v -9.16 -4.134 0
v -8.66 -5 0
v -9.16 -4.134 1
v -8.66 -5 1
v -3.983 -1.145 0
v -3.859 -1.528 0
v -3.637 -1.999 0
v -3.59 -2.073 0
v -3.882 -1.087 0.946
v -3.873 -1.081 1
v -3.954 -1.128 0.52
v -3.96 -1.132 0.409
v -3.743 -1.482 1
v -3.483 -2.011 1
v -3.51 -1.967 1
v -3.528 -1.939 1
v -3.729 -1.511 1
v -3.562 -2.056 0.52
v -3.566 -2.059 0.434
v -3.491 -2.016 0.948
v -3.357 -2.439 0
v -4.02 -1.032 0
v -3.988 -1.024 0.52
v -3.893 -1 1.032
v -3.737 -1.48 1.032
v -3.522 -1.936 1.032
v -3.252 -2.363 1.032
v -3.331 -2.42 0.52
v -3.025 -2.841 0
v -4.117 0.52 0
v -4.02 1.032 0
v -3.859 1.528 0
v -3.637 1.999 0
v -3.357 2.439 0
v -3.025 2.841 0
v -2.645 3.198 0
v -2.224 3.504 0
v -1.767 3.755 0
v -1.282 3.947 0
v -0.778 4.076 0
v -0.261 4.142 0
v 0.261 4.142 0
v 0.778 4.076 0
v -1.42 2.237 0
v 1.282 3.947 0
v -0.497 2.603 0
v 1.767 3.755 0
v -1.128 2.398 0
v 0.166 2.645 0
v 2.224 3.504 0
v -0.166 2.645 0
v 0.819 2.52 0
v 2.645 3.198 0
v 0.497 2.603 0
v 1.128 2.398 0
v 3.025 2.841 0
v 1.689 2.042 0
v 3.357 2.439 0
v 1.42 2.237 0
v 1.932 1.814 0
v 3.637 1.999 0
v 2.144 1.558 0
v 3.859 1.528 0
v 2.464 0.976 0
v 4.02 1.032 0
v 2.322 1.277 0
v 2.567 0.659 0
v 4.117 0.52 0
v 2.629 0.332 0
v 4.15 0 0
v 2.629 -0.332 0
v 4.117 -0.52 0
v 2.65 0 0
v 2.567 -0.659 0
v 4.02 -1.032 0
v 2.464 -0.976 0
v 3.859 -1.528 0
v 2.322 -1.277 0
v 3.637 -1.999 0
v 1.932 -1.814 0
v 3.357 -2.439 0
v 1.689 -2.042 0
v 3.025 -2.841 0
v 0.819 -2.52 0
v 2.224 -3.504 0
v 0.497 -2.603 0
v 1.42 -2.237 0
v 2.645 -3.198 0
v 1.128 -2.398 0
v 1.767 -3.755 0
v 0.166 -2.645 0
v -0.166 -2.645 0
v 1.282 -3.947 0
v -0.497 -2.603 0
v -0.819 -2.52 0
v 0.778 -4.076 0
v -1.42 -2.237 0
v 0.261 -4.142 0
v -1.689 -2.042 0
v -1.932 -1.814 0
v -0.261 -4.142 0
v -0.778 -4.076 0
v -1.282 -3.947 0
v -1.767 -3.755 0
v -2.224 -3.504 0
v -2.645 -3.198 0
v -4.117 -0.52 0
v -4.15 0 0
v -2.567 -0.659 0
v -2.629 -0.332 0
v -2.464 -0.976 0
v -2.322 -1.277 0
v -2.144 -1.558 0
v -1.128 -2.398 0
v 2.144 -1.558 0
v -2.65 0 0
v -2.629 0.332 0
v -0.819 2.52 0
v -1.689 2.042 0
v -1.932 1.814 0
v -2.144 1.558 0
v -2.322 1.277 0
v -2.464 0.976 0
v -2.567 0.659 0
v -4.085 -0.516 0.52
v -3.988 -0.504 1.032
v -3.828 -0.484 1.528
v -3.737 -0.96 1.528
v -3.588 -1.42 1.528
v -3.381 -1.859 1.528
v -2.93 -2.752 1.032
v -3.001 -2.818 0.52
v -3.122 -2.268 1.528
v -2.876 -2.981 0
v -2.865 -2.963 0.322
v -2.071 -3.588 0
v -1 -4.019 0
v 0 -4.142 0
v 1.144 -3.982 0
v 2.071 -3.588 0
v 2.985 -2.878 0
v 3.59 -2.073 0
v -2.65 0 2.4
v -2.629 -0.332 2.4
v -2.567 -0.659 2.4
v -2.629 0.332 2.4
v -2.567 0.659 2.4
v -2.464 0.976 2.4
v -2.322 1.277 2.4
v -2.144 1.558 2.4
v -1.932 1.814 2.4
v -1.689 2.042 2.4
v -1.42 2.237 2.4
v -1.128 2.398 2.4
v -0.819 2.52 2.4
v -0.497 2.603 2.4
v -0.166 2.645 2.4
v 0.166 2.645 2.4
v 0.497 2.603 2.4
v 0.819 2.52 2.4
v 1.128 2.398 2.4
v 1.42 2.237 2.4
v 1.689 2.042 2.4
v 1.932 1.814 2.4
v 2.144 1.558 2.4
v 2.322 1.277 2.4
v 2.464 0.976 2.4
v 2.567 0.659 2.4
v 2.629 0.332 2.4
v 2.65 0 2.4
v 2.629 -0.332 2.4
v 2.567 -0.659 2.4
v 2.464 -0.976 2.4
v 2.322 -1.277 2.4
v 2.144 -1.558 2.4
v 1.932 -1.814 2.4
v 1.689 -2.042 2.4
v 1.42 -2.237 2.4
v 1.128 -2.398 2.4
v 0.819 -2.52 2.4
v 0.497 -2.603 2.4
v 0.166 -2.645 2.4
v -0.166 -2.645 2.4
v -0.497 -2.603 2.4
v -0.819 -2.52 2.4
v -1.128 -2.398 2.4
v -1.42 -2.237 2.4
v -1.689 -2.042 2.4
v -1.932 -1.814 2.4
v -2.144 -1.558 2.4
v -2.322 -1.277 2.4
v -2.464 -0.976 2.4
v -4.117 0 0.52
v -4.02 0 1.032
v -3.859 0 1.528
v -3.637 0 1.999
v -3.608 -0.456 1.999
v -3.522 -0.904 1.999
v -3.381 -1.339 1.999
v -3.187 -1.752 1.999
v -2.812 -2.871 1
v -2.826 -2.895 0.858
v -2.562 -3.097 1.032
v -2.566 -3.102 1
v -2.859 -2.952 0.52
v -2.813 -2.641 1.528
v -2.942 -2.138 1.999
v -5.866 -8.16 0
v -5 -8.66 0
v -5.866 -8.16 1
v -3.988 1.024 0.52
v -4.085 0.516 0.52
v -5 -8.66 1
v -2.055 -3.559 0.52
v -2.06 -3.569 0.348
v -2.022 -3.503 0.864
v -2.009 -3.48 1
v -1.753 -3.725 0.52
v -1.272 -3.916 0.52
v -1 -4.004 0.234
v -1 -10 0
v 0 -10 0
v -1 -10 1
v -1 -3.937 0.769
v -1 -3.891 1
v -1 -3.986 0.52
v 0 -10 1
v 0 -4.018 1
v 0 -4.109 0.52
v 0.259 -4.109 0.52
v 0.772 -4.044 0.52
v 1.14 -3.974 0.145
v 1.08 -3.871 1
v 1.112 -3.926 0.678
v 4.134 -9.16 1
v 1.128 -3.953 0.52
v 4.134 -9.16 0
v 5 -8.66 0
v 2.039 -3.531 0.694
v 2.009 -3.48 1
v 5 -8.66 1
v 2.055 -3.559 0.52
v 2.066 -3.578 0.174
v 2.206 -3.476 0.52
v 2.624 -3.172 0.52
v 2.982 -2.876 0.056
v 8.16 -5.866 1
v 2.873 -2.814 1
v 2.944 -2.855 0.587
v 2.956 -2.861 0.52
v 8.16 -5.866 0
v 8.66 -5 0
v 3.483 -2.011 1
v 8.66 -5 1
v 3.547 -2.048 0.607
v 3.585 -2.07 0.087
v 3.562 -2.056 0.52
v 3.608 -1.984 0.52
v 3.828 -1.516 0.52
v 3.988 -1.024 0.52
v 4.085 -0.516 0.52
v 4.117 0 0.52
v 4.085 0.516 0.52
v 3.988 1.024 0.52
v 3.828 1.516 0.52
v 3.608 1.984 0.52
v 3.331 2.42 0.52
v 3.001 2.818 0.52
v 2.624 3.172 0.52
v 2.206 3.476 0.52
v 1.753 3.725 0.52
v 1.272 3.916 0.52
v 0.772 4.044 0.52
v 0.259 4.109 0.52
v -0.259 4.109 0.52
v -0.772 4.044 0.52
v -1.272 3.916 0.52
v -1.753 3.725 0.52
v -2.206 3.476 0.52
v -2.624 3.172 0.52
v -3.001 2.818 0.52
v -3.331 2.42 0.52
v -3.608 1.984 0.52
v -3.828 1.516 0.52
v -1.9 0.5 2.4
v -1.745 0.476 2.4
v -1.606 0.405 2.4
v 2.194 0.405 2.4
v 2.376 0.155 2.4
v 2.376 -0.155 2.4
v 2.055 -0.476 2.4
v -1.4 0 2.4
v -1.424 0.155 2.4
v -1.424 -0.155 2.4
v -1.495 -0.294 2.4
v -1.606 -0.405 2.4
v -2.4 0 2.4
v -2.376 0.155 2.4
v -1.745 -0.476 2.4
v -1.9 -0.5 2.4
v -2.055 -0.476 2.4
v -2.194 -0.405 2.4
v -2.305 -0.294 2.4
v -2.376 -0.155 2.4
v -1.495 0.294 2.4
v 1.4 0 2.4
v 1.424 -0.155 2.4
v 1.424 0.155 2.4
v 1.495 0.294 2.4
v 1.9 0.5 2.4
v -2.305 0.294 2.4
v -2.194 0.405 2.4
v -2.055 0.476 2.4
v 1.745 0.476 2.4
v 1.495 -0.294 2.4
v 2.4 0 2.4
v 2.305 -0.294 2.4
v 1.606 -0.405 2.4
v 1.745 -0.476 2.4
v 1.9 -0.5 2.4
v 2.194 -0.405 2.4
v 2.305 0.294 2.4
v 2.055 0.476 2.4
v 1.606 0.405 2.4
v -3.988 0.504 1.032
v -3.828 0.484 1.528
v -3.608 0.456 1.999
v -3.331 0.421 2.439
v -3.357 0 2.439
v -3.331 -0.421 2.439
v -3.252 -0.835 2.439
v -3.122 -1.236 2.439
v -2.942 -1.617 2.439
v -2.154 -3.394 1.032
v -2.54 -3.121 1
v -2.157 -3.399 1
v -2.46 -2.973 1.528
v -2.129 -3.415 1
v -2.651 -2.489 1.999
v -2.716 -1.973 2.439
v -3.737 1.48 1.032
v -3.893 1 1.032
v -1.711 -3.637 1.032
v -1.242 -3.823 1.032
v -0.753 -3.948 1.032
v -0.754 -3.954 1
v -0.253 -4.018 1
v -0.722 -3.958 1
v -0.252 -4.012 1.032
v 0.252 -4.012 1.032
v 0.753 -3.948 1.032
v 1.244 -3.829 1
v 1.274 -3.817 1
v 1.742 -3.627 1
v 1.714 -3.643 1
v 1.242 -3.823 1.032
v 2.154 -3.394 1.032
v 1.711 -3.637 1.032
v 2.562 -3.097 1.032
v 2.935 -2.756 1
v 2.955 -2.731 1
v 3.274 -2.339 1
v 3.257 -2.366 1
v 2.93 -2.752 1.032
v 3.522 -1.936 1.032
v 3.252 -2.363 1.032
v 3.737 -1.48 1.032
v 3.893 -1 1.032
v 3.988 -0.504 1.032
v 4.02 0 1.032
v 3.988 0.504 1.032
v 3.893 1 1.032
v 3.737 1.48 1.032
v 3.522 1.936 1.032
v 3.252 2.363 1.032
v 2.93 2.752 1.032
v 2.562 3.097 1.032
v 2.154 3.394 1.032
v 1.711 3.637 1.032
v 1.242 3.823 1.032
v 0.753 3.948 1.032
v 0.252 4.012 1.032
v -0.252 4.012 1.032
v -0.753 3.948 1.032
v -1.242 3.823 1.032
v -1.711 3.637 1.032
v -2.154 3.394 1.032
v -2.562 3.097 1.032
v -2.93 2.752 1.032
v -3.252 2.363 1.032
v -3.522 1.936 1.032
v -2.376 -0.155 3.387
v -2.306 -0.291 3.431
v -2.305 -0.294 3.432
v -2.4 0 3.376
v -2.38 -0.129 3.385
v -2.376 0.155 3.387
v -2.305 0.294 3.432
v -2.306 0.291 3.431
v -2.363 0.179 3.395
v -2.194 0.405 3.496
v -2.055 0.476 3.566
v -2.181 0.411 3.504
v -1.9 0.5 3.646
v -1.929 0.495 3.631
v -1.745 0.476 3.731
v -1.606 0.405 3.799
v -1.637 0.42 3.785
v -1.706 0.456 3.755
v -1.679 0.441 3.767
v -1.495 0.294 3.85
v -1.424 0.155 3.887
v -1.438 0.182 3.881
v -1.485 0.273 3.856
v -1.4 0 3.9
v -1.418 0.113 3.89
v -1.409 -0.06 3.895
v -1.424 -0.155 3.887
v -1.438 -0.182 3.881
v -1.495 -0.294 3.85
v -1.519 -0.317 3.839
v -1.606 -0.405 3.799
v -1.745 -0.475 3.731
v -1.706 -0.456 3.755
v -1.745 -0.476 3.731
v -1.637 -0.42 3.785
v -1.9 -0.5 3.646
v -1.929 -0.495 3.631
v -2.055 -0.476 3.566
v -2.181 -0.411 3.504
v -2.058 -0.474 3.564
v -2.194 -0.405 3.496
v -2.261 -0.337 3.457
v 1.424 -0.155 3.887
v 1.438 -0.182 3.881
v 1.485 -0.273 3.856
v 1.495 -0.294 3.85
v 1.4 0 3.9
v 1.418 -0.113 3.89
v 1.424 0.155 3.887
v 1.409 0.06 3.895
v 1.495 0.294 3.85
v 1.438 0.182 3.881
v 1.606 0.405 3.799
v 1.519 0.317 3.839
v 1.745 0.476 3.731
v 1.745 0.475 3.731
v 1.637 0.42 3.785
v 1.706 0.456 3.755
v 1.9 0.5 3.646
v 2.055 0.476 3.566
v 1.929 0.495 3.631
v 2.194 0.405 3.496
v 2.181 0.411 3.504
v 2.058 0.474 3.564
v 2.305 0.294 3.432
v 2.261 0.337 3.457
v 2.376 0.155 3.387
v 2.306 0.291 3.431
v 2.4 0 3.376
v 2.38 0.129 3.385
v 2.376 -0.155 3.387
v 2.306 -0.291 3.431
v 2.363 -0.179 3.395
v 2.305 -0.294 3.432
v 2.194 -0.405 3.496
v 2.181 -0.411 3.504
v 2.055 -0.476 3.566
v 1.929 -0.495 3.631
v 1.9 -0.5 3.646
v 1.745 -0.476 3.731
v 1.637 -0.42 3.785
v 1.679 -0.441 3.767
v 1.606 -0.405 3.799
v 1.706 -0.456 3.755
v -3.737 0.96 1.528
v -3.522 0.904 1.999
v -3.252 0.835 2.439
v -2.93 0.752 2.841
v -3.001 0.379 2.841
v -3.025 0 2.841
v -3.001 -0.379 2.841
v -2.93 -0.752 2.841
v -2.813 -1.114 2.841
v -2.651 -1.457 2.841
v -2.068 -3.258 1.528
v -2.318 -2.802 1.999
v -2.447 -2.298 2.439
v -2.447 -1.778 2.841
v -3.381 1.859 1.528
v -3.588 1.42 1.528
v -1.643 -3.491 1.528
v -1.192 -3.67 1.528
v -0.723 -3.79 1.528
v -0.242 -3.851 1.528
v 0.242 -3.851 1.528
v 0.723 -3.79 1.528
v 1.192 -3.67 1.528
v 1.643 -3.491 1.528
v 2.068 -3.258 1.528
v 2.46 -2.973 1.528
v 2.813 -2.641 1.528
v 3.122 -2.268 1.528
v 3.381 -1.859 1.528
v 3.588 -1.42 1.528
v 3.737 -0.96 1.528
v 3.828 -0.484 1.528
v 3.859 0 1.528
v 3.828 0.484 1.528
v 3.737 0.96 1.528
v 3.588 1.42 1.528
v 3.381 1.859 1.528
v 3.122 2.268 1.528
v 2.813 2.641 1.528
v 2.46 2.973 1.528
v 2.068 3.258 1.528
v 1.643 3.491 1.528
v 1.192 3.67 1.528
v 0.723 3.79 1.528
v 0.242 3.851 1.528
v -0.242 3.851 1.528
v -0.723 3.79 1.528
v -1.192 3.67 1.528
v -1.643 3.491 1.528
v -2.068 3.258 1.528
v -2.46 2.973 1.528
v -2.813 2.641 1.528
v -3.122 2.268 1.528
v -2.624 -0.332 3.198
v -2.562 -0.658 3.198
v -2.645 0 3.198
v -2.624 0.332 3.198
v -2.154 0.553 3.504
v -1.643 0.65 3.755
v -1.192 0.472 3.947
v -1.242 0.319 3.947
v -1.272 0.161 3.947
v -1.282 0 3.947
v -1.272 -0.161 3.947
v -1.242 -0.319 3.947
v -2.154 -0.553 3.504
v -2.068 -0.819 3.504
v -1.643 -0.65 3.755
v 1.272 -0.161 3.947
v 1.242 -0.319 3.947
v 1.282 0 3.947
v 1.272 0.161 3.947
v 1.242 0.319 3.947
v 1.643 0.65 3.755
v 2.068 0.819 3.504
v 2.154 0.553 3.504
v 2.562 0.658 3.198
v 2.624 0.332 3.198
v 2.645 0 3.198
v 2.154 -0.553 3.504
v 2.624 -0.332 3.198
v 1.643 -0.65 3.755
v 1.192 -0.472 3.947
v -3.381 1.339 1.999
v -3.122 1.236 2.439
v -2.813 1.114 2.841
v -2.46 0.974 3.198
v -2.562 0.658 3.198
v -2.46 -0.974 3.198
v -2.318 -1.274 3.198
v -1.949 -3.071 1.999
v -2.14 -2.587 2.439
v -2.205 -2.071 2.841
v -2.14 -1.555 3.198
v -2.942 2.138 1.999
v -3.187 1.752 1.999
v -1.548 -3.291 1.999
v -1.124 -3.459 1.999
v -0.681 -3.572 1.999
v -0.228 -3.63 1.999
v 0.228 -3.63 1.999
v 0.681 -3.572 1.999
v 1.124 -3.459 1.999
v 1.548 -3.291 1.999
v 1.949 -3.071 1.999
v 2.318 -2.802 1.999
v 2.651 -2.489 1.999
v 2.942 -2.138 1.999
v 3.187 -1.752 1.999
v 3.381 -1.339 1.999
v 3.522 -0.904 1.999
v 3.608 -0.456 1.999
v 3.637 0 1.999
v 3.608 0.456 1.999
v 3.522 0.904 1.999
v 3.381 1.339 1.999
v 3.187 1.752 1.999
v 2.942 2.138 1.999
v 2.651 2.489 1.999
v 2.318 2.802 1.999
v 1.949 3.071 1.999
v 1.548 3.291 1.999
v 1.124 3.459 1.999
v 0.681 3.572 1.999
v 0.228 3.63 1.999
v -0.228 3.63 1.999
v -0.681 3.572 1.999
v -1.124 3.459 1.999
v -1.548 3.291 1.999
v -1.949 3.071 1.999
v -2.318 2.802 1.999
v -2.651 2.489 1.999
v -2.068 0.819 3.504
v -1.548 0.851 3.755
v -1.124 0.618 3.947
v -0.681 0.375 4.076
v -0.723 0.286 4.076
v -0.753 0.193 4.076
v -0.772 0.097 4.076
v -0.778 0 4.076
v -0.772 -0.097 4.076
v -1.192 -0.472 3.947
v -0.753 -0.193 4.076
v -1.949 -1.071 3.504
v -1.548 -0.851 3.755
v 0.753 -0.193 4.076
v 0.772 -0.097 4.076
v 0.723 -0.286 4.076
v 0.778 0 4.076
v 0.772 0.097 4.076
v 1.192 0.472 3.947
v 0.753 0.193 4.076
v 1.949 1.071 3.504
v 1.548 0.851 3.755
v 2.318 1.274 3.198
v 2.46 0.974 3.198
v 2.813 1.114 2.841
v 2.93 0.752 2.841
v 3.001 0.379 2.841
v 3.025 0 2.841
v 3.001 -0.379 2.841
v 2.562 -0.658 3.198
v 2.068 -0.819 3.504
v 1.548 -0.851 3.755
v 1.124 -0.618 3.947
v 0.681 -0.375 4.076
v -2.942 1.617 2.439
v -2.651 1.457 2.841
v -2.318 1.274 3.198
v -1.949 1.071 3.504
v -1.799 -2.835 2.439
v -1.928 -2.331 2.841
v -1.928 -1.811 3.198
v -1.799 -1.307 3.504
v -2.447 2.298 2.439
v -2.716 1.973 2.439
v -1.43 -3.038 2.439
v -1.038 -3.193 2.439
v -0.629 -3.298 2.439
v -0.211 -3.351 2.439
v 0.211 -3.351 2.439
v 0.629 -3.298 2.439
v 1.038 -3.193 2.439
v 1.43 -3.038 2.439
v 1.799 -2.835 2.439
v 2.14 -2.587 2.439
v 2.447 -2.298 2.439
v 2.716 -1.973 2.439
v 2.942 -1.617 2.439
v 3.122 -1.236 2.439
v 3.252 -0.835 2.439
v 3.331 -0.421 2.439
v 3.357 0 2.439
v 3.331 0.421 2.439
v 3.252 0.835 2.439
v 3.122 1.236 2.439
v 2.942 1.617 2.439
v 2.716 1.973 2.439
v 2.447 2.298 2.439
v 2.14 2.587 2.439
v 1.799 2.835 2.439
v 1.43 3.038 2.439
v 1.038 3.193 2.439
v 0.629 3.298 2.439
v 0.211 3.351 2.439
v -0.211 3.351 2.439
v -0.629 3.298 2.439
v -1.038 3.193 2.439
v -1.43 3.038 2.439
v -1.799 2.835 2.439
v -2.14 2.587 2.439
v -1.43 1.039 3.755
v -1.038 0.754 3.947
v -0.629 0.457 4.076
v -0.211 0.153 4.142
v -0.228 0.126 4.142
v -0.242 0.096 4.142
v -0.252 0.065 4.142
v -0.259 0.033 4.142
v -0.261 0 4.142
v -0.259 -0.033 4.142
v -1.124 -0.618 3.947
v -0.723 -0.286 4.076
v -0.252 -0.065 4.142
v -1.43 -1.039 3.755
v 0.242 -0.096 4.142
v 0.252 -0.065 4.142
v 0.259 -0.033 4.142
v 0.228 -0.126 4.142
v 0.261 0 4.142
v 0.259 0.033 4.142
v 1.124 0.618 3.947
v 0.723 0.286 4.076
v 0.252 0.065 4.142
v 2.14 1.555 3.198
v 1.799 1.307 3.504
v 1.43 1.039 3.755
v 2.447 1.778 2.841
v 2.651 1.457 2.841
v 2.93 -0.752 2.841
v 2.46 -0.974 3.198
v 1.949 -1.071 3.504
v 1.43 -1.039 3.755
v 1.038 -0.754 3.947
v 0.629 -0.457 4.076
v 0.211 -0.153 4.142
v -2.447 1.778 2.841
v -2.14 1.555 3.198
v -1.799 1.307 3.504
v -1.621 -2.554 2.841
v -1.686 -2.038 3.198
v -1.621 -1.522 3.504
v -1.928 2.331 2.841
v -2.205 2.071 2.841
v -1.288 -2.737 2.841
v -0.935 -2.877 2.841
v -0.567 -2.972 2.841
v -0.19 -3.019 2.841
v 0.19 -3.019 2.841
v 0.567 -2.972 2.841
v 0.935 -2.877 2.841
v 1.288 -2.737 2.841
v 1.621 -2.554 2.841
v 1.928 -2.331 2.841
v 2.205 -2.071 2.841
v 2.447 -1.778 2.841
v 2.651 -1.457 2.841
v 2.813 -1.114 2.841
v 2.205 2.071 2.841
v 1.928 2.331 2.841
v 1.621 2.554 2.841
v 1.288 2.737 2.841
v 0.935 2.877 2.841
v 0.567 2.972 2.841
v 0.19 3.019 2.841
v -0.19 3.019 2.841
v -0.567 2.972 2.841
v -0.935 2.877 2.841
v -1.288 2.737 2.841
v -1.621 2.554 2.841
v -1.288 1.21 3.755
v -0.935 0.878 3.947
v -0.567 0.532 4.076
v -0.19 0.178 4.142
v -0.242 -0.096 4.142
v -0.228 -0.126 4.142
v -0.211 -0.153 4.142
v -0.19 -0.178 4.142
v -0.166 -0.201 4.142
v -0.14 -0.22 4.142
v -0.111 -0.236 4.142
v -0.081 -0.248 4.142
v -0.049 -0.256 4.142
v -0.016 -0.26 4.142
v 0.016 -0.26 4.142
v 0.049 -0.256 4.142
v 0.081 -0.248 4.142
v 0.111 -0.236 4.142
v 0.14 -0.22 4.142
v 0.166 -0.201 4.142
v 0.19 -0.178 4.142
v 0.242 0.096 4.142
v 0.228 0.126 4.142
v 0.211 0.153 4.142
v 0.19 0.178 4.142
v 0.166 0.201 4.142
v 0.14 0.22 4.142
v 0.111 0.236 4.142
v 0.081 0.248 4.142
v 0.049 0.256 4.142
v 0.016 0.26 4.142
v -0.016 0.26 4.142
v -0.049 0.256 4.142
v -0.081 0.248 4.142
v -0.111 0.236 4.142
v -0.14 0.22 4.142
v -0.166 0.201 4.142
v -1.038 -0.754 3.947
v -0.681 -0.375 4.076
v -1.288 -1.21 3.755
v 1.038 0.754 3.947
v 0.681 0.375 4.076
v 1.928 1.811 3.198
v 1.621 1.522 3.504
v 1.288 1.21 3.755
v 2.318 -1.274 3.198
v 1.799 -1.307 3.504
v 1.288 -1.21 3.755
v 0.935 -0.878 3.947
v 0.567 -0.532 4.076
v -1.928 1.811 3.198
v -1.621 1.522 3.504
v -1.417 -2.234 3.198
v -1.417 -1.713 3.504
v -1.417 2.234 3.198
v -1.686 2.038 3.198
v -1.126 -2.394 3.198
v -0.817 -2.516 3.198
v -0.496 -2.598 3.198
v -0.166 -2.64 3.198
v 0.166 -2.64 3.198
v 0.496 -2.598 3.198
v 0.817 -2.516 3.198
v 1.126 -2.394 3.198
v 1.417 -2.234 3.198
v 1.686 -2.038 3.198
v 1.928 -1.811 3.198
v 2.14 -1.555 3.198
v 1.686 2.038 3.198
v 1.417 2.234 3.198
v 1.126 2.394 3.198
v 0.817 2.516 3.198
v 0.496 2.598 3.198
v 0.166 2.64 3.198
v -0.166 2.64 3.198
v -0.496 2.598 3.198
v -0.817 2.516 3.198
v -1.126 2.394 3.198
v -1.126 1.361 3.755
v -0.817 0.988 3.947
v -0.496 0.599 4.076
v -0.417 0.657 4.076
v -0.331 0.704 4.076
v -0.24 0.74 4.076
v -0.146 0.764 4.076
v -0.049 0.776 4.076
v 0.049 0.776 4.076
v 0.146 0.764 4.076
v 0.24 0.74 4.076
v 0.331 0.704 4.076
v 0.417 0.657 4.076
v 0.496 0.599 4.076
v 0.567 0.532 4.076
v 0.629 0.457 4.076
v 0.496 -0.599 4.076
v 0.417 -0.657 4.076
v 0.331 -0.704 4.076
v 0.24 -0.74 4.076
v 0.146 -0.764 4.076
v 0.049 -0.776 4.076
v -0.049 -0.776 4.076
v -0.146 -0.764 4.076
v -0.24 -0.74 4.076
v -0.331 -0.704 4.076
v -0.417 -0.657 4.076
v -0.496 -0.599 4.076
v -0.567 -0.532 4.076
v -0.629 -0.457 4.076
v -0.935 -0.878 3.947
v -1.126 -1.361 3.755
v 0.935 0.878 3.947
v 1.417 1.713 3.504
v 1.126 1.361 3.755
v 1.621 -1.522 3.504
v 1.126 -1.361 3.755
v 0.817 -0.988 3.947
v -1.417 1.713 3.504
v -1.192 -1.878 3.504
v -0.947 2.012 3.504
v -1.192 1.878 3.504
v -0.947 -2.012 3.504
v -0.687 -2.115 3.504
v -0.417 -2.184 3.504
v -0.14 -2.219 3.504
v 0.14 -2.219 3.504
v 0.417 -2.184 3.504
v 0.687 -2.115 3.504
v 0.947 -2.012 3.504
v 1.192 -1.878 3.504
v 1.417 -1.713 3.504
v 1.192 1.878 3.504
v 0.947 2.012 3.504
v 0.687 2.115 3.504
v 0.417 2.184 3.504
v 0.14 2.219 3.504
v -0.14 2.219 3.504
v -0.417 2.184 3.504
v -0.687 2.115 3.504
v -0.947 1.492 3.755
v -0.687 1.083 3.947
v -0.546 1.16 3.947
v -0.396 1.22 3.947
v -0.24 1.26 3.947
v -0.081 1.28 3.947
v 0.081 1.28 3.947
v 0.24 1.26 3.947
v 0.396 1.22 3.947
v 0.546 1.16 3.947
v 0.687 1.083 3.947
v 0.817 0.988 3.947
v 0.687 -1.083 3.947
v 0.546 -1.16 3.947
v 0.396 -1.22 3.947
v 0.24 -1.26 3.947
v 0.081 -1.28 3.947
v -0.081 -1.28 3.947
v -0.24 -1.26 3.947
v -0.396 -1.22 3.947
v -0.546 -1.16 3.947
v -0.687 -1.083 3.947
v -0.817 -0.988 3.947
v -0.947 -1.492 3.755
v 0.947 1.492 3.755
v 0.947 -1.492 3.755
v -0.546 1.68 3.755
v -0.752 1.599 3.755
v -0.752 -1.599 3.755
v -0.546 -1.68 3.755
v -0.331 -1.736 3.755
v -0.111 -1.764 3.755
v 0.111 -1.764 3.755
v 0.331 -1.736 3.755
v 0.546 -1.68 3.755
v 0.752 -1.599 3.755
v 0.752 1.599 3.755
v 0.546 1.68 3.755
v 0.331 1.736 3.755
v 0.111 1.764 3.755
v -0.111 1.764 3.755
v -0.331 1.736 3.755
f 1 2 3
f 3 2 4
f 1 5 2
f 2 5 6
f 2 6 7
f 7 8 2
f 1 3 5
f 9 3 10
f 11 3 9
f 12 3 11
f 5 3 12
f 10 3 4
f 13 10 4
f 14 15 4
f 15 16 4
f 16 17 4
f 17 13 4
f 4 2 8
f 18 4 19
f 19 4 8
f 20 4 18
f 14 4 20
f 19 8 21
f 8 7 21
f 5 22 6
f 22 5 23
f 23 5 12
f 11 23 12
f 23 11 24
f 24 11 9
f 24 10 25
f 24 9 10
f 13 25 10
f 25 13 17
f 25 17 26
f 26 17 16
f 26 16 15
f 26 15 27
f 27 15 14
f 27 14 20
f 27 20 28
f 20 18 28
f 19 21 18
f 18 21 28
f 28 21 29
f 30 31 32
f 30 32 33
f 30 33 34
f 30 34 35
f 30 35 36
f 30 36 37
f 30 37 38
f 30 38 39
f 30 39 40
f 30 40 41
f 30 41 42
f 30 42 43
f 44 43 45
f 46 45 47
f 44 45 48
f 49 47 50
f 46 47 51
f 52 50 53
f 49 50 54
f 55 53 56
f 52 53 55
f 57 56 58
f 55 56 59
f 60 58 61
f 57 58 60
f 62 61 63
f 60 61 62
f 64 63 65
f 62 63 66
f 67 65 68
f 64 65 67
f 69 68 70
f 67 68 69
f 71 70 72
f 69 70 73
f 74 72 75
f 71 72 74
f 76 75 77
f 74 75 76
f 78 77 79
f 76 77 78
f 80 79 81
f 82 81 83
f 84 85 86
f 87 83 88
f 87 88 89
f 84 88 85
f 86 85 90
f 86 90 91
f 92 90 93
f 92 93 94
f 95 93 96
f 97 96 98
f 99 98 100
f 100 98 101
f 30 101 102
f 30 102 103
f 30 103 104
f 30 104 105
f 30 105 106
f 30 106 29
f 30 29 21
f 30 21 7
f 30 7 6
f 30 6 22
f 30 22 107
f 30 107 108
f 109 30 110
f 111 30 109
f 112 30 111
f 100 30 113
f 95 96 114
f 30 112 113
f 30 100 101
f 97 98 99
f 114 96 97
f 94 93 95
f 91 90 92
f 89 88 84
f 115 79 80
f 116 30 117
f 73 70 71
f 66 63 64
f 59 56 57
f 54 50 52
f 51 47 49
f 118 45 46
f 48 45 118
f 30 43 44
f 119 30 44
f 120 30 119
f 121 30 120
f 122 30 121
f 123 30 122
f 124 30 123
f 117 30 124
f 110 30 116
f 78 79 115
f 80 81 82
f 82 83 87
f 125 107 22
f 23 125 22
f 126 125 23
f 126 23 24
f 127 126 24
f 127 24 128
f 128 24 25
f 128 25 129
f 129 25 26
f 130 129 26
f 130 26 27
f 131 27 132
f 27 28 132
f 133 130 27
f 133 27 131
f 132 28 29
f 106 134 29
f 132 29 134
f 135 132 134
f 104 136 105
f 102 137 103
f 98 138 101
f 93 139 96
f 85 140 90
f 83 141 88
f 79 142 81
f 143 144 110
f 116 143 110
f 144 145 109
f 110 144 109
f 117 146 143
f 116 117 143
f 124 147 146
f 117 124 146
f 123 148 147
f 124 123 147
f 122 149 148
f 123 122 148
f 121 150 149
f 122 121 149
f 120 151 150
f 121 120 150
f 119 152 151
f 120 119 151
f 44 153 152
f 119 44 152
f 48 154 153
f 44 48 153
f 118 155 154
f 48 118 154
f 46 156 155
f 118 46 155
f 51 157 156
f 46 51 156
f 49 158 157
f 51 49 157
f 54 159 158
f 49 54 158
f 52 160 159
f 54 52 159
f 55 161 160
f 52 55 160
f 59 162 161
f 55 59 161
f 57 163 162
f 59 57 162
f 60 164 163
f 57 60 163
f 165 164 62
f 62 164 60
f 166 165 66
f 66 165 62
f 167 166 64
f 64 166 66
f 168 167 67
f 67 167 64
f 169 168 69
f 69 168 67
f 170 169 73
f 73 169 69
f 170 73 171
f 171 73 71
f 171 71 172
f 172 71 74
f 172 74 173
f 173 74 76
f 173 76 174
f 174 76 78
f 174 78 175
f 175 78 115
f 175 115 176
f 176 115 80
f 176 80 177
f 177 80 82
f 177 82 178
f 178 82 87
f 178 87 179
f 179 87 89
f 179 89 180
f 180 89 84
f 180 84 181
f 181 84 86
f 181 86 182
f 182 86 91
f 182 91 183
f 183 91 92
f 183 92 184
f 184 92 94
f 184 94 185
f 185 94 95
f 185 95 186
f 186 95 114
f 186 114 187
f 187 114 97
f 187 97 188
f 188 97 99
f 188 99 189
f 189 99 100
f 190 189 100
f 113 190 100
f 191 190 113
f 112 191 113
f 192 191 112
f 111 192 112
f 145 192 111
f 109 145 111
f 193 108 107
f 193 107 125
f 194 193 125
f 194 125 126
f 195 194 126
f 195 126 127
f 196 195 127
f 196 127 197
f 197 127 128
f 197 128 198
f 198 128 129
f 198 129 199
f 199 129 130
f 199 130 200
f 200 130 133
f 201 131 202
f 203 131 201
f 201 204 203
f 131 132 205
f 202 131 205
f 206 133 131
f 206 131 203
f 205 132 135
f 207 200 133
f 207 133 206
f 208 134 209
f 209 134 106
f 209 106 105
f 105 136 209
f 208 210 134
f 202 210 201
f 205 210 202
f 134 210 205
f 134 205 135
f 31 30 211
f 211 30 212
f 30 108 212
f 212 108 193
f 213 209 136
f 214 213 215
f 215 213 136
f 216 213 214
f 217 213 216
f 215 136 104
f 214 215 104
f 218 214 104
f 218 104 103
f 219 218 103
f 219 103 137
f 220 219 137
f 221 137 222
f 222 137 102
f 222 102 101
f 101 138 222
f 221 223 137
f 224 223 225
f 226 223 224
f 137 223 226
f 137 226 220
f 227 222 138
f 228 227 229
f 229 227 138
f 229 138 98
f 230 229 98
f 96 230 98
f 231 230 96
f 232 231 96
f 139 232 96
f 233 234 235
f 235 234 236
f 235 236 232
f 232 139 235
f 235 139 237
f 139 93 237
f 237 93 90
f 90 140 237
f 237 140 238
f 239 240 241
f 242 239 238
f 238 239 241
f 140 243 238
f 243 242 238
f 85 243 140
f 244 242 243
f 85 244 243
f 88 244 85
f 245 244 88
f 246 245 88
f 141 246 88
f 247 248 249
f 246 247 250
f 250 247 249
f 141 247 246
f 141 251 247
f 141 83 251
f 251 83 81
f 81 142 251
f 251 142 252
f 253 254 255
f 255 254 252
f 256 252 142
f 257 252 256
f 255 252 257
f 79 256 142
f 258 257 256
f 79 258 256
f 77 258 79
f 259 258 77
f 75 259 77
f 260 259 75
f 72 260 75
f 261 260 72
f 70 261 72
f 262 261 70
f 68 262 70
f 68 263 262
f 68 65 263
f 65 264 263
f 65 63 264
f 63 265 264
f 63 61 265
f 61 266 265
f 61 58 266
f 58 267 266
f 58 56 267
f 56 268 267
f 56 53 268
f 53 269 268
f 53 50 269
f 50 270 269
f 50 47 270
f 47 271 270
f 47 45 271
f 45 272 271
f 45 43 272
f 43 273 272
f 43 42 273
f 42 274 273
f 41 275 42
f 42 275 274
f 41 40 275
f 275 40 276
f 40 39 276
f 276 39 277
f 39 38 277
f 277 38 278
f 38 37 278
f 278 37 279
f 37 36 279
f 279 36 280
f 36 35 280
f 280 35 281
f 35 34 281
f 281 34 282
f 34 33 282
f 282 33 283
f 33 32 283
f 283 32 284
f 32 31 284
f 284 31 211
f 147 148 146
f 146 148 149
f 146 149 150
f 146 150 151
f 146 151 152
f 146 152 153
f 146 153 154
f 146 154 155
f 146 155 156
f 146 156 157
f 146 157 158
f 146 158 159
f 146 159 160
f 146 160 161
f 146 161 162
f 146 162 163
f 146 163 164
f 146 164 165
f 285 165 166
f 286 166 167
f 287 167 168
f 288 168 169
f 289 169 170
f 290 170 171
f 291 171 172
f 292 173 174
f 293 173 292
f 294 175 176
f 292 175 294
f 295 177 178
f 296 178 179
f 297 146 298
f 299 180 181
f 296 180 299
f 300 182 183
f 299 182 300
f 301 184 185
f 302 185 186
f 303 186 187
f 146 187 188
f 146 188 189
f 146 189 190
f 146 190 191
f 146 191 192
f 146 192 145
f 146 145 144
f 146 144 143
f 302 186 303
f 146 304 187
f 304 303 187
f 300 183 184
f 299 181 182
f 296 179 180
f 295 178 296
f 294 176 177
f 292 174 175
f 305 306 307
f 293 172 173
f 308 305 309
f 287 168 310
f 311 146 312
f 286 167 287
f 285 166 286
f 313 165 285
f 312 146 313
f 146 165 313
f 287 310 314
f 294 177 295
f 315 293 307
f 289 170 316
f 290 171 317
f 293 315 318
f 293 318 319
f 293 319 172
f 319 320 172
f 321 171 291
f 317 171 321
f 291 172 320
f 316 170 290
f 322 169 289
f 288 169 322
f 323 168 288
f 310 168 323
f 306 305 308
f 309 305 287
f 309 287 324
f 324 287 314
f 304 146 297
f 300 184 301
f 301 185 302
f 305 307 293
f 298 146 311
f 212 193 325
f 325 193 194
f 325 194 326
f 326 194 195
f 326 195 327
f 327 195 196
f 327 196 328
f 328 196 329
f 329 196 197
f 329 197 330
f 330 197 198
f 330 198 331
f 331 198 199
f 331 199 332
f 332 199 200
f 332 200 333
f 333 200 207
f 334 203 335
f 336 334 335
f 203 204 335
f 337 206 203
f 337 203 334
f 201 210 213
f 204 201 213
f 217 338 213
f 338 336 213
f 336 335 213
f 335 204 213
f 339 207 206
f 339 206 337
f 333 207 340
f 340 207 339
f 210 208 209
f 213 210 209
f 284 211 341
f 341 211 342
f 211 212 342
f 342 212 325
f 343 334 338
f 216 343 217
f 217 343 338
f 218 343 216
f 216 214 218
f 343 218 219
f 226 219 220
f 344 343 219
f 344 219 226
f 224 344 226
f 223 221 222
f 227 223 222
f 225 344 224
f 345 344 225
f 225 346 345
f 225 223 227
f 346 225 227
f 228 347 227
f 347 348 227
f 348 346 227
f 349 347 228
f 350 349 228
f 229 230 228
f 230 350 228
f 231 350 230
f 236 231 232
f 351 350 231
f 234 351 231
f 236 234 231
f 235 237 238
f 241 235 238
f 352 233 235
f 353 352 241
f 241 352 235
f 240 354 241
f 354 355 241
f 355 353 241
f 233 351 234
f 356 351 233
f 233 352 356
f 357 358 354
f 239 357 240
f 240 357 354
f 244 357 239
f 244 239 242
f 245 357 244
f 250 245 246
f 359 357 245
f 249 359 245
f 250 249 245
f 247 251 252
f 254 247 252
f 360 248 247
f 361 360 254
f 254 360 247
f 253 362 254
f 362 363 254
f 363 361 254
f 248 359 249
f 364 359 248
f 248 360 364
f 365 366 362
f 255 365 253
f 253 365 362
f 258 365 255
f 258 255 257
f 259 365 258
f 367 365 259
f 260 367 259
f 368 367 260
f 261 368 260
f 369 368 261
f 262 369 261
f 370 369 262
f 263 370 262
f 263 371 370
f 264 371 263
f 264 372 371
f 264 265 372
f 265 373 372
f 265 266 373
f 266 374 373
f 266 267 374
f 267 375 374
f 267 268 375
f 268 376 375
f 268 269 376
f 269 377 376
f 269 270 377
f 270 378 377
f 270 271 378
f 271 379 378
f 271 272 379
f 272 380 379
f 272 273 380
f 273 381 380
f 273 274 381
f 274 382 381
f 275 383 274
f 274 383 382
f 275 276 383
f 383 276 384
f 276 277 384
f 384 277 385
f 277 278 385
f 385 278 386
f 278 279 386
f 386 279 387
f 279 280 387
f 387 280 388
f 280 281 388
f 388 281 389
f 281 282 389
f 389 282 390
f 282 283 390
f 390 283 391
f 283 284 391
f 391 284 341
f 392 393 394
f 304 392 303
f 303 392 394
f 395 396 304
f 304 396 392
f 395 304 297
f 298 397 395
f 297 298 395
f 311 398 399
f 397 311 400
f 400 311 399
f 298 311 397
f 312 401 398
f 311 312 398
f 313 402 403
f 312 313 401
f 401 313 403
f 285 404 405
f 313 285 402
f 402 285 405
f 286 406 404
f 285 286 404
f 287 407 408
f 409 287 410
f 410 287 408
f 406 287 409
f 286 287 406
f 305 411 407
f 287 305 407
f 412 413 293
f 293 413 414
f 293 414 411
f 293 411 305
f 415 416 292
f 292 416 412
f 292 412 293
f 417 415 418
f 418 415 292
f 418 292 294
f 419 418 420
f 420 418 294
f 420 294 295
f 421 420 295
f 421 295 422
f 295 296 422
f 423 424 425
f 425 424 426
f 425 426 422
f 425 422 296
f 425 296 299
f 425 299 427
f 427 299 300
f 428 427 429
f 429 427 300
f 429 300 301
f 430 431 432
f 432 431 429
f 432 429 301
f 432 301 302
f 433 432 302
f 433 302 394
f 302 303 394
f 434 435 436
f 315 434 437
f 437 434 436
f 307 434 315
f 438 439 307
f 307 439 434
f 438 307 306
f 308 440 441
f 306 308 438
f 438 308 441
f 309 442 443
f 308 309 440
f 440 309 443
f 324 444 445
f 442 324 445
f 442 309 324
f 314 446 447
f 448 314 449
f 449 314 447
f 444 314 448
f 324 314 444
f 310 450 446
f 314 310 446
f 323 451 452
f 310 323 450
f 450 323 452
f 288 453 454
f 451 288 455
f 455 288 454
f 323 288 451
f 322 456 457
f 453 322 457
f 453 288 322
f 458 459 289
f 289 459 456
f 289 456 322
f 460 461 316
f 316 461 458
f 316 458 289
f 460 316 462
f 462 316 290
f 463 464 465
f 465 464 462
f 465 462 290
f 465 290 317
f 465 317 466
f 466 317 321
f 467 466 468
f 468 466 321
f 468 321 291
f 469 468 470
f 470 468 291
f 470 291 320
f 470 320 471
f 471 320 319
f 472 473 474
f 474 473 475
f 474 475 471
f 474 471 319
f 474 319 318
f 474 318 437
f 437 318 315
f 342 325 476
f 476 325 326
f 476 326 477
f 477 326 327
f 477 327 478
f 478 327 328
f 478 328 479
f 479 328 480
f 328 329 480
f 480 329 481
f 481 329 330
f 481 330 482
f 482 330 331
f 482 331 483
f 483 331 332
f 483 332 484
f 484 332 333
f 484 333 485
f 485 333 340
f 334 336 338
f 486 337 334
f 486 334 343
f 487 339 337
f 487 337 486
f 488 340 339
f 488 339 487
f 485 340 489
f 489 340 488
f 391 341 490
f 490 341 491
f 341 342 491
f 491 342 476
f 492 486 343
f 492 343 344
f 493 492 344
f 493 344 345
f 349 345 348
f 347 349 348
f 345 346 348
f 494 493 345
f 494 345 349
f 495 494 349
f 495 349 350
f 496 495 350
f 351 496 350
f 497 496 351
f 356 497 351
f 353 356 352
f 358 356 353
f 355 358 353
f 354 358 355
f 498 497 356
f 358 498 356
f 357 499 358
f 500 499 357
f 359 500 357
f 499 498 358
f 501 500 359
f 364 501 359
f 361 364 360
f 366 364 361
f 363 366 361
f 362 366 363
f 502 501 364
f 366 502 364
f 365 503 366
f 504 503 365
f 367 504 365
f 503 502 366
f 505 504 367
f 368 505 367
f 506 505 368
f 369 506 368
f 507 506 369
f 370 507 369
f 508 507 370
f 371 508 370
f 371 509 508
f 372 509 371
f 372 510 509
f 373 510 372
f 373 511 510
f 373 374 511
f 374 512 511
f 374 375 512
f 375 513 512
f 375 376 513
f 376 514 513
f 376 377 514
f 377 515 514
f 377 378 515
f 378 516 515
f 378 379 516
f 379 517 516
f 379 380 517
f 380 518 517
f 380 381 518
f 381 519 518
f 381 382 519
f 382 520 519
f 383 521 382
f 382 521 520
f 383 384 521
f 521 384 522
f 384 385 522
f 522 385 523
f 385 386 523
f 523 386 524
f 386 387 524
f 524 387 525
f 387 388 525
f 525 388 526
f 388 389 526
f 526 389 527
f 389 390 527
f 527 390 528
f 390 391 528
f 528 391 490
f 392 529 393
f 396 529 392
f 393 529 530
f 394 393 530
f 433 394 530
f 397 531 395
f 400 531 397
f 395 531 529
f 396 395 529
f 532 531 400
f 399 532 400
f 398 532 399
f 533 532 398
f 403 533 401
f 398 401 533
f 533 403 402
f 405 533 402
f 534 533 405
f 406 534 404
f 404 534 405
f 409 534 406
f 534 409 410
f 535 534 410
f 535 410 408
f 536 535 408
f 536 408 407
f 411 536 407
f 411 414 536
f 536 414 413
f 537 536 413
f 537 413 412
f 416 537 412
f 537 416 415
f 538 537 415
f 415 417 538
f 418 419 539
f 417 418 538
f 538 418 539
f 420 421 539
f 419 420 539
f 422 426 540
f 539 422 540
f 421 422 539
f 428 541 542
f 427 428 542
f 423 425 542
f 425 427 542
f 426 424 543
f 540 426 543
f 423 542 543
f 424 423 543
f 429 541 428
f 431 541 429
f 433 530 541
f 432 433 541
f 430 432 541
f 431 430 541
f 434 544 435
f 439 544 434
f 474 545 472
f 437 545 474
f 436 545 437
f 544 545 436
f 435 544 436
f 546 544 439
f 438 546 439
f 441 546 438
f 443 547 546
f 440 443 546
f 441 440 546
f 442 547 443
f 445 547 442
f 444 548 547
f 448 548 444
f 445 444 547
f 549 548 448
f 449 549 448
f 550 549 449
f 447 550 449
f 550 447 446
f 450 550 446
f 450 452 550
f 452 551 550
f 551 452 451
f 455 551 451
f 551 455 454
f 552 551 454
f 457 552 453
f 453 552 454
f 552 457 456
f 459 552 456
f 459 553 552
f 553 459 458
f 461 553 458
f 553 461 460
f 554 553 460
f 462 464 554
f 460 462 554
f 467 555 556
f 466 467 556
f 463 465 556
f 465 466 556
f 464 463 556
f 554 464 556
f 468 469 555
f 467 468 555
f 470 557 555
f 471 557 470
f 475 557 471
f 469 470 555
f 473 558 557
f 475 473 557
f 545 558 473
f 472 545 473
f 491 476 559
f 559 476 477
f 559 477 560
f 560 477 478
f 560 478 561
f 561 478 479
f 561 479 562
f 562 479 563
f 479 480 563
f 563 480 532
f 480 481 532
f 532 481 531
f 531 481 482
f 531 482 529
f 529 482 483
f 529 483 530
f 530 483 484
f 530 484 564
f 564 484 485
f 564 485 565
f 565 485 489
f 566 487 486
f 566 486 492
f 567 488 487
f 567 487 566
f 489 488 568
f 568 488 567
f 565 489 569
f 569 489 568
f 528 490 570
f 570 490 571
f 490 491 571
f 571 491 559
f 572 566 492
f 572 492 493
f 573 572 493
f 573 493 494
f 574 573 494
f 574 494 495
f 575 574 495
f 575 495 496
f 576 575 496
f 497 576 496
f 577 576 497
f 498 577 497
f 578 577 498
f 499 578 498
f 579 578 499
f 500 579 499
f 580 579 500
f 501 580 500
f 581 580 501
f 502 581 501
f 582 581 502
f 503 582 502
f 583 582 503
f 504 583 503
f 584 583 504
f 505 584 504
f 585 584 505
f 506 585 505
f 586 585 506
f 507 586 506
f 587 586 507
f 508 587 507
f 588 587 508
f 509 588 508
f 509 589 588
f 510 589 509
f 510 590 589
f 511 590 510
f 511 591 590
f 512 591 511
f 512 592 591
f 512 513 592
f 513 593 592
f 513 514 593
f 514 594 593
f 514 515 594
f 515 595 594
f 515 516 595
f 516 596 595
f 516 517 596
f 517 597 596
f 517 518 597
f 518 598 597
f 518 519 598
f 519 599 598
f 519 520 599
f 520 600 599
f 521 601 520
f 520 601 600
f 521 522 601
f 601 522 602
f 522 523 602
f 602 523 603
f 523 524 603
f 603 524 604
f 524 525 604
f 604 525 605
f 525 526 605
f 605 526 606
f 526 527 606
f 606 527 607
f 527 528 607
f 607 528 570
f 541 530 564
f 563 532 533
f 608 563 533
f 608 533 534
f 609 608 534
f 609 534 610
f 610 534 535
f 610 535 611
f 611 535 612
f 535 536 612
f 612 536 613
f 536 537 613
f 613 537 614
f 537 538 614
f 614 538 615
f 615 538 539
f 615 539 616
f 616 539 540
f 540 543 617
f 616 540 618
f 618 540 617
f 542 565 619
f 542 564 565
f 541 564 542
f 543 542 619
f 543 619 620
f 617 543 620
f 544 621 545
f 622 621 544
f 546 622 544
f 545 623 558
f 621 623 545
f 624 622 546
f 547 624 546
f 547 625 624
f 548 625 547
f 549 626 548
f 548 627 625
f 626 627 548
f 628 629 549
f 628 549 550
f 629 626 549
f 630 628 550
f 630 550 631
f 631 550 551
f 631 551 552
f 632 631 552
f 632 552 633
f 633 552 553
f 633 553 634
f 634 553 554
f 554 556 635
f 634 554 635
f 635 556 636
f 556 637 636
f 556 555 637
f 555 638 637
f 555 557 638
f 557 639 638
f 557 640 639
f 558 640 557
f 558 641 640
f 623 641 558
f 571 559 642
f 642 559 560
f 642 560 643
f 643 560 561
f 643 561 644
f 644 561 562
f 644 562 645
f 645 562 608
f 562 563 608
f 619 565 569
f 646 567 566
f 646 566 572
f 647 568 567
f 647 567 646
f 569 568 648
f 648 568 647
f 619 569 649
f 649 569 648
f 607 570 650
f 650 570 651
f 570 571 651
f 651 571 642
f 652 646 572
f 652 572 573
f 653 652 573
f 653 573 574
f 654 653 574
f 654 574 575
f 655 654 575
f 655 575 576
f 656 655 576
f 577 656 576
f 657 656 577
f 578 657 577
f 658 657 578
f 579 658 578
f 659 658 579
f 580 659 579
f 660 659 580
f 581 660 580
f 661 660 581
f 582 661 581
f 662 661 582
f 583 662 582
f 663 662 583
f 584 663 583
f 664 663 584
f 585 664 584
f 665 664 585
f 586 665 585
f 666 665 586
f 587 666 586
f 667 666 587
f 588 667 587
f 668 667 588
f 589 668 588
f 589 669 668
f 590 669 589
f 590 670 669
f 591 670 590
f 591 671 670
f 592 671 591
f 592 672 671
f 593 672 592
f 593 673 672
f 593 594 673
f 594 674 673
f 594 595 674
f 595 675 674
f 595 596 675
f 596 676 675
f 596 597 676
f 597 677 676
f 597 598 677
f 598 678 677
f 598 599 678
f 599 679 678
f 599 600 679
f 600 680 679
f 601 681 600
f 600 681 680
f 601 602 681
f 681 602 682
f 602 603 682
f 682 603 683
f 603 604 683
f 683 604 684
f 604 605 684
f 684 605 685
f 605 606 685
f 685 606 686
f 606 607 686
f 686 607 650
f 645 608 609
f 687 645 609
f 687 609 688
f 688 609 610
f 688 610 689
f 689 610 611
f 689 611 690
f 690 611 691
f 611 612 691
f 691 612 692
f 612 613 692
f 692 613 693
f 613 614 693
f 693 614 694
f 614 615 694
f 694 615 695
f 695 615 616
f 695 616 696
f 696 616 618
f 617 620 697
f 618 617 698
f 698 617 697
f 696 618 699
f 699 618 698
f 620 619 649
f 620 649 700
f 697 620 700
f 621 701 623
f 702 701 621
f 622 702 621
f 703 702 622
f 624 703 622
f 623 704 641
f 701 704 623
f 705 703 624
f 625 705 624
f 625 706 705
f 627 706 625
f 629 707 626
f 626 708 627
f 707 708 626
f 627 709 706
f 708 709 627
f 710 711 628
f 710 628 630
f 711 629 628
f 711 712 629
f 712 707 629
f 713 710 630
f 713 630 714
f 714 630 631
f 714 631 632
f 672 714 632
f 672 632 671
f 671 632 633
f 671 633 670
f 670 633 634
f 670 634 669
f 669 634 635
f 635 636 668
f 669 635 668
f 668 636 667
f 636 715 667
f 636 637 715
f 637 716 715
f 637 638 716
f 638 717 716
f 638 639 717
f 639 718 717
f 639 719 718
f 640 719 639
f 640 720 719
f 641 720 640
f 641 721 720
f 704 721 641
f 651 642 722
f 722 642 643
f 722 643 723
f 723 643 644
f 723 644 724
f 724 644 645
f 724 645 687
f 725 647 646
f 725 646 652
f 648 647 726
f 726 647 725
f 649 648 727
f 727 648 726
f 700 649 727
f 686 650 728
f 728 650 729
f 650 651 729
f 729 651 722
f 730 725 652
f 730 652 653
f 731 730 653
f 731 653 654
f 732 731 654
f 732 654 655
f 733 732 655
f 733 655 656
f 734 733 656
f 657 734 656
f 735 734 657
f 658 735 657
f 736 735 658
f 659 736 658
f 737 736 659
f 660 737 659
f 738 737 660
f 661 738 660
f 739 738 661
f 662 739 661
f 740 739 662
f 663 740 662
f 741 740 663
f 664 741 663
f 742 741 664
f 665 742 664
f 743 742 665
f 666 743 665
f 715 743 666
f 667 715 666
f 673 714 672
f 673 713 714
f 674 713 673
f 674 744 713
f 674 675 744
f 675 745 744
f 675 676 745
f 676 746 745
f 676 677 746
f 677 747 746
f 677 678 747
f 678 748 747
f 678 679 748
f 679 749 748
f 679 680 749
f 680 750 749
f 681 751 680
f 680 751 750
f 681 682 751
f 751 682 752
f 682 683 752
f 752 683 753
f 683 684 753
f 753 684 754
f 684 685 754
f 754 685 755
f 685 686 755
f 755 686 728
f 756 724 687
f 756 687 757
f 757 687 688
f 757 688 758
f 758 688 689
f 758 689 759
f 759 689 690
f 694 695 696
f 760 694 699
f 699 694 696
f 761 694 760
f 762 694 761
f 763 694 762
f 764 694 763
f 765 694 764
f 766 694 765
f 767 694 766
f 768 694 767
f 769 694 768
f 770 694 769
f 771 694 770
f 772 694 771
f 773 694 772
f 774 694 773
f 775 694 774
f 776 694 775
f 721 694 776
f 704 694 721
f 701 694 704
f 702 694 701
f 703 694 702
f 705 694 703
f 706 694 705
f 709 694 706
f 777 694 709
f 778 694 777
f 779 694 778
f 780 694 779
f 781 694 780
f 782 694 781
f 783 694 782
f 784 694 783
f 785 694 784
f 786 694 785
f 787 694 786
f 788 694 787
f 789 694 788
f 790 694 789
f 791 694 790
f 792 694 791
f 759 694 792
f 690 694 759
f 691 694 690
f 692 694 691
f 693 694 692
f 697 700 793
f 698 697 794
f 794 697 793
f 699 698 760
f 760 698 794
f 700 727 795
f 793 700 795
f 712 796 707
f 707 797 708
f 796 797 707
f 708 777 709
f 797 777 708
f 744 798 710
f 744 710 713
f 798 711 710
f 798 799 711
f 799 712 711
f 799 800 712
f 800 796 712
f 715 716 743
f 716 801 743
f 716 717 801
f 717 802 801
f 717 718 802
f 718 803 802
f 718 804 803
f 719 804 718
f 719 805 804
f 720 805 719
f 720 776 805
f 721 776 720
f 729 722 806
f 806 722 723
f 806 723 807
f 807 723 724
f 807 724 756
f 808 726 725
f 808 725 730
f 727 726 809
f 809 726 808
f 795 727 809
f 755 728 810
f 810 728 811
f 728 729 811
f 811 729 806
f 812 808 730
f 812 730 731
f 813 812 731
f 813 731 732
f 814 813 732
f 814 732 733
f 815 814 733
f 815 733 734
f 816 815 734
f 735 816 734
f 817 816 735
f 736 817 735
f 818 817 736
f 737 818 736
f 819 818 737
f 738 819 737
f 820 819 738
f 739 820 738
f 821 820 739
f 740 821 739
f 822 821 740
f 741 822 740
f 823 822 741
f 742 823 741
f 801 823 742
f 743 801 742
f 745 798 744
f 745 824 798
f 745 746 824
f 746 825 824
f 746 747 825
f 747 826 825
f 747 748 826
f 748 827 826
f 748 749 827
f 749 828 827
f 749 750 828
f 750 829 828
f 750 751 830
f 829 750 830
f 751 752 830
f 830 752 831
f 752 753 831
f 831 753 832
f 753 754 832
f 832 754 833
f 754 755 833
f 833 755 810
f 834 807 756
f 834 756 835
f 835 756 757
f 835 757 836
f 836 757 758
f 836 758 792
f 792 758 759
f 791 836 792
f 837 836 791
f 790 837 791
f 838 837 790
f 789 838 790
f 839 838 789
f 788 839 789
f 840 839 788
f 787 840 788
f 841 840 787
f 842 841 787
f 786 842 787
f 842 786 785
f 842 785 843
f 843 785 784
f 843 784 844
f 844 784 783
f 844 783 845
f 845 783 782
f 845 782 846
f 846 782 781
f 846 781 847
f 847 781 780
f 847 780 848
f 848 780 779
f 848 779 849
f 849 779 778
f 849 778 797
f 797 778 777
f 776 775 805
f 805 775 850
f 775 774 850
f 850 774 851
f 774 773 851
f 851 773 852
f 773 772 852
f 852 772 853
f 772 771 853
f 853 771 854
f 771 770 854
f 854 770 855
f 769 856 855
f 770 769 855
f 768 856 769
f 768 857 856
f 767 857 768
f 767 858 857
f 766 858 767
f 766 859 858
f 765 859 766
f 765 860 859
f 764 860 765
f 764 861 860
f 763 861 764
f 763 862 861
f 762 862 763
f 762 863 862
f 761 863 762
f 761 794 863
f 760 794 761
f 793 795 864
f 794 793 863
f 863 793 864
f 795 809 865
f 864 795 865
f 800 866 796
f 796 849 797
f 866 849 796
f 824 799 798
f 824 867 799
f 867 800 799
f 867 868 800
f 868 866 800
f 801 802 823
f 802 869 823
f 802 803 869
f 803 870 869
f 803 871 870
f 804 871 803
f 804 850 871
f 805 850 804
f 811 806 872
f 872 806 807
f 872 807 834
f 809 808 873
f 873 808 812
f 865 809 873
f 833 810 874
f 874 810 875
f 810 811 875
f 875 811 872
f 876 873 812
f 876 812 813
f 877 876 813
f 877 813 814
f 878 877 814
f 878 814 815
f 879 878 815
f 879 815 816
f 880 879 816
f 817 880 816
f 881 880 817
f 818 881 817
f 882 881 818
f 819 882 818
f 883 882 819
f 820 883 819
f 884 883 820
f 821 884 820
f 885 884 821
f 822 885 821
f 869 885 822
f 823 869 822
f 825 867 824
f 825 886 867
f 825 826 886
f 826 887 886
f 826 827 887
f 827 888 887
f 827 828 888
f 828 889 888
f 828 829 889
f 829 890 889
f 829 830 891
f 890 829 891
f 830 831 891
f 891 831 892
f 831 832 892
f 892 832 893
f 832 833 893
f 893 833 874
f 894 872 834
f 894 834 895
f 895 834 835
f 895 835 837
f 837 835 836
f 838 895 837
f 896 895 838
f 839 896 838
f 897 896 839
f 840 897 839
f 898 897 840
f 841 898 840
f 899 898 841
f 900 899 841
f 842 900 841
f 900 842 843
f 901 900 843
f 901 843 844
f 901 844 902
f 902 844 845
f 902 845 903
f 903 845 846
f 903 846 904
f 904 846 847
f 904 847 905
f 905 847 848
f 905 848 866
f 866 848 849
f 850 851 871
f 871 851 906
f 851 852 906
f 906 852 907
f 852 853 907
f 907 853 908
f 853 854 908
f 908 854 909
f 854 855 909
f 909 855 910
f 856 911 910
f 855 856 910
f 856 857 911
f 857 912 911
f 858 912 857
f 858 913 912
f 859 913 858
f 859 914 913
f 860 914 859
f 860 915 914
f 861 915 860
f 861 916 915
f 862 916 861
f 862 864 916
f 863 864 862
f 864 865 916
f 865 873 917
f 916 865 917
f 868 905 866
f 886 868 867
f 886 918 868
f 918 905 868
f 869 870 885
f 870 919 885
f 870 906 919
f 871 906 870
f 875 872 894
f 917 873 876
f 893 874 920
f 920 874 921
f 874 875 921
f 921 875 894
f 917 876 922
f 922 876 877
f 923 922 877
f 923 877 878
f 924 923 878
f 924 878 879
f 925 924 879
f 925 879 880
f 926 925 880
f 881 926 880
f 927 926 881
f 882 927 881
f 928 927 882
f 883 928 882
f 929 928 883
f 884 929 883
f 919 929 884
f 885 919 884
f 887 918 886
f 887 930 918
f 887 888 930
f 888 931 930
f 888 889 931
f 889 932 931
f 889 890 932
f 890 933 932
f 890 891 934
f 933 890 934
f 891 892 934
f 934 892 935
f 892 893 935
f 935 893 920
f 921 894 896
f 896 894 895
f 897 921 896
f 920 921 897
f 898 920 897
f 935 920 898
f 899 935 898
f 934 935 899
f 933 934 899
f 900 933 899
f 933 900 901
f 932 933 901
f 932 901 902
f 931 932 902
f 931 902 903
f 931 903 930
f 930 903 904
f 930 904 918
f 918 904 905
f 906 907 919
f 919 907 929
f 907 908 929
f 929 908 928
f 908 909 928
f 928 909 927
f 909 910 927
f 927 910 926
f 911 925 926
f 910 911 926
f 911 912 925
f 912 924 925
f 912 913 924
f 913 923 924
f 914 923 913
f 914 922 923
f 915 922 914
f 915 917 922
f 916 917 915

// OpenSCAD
ldr_dia = 5.1;
ldr_thickness = 2.5;
wall_thickness = 1.5;
tolerance = 0.1;

module ldr()
{
	union()
	{
		// main body
		cylinder(h=ldr_thickness, r=ldr_dia/2 + tolerance, $fn=50);
		// wires
		translate([1.9,0,0]) cylinder(h=5, r=0.5, $fn=20);
		translate([-1.9,0,0]) cylinder(h=5, r=0.5, $fn=20);
	}
}

module eyelash()
{
	r = (ldr_dia + (wall_thickness + tolerance)*2)/2;
	difference()
	{
		union()
		{
			// Main sphere
			sphere(r, center=true, $fn=50);

			// lashes		
			for(x=[120:30:240])
			{
				rotate([0,0,x])
					cube([1, 10, 1]);
			}
		}

		// cut it in half
		translate([0, 0, -r/2-0.5]) cube([r*2 + 1, r*2 + 1, r + 1], center=true);

		// cut out the LDR.
		translate([0,0,-0.1]) ldr();
	}
}

//ldr();
eyelash();
